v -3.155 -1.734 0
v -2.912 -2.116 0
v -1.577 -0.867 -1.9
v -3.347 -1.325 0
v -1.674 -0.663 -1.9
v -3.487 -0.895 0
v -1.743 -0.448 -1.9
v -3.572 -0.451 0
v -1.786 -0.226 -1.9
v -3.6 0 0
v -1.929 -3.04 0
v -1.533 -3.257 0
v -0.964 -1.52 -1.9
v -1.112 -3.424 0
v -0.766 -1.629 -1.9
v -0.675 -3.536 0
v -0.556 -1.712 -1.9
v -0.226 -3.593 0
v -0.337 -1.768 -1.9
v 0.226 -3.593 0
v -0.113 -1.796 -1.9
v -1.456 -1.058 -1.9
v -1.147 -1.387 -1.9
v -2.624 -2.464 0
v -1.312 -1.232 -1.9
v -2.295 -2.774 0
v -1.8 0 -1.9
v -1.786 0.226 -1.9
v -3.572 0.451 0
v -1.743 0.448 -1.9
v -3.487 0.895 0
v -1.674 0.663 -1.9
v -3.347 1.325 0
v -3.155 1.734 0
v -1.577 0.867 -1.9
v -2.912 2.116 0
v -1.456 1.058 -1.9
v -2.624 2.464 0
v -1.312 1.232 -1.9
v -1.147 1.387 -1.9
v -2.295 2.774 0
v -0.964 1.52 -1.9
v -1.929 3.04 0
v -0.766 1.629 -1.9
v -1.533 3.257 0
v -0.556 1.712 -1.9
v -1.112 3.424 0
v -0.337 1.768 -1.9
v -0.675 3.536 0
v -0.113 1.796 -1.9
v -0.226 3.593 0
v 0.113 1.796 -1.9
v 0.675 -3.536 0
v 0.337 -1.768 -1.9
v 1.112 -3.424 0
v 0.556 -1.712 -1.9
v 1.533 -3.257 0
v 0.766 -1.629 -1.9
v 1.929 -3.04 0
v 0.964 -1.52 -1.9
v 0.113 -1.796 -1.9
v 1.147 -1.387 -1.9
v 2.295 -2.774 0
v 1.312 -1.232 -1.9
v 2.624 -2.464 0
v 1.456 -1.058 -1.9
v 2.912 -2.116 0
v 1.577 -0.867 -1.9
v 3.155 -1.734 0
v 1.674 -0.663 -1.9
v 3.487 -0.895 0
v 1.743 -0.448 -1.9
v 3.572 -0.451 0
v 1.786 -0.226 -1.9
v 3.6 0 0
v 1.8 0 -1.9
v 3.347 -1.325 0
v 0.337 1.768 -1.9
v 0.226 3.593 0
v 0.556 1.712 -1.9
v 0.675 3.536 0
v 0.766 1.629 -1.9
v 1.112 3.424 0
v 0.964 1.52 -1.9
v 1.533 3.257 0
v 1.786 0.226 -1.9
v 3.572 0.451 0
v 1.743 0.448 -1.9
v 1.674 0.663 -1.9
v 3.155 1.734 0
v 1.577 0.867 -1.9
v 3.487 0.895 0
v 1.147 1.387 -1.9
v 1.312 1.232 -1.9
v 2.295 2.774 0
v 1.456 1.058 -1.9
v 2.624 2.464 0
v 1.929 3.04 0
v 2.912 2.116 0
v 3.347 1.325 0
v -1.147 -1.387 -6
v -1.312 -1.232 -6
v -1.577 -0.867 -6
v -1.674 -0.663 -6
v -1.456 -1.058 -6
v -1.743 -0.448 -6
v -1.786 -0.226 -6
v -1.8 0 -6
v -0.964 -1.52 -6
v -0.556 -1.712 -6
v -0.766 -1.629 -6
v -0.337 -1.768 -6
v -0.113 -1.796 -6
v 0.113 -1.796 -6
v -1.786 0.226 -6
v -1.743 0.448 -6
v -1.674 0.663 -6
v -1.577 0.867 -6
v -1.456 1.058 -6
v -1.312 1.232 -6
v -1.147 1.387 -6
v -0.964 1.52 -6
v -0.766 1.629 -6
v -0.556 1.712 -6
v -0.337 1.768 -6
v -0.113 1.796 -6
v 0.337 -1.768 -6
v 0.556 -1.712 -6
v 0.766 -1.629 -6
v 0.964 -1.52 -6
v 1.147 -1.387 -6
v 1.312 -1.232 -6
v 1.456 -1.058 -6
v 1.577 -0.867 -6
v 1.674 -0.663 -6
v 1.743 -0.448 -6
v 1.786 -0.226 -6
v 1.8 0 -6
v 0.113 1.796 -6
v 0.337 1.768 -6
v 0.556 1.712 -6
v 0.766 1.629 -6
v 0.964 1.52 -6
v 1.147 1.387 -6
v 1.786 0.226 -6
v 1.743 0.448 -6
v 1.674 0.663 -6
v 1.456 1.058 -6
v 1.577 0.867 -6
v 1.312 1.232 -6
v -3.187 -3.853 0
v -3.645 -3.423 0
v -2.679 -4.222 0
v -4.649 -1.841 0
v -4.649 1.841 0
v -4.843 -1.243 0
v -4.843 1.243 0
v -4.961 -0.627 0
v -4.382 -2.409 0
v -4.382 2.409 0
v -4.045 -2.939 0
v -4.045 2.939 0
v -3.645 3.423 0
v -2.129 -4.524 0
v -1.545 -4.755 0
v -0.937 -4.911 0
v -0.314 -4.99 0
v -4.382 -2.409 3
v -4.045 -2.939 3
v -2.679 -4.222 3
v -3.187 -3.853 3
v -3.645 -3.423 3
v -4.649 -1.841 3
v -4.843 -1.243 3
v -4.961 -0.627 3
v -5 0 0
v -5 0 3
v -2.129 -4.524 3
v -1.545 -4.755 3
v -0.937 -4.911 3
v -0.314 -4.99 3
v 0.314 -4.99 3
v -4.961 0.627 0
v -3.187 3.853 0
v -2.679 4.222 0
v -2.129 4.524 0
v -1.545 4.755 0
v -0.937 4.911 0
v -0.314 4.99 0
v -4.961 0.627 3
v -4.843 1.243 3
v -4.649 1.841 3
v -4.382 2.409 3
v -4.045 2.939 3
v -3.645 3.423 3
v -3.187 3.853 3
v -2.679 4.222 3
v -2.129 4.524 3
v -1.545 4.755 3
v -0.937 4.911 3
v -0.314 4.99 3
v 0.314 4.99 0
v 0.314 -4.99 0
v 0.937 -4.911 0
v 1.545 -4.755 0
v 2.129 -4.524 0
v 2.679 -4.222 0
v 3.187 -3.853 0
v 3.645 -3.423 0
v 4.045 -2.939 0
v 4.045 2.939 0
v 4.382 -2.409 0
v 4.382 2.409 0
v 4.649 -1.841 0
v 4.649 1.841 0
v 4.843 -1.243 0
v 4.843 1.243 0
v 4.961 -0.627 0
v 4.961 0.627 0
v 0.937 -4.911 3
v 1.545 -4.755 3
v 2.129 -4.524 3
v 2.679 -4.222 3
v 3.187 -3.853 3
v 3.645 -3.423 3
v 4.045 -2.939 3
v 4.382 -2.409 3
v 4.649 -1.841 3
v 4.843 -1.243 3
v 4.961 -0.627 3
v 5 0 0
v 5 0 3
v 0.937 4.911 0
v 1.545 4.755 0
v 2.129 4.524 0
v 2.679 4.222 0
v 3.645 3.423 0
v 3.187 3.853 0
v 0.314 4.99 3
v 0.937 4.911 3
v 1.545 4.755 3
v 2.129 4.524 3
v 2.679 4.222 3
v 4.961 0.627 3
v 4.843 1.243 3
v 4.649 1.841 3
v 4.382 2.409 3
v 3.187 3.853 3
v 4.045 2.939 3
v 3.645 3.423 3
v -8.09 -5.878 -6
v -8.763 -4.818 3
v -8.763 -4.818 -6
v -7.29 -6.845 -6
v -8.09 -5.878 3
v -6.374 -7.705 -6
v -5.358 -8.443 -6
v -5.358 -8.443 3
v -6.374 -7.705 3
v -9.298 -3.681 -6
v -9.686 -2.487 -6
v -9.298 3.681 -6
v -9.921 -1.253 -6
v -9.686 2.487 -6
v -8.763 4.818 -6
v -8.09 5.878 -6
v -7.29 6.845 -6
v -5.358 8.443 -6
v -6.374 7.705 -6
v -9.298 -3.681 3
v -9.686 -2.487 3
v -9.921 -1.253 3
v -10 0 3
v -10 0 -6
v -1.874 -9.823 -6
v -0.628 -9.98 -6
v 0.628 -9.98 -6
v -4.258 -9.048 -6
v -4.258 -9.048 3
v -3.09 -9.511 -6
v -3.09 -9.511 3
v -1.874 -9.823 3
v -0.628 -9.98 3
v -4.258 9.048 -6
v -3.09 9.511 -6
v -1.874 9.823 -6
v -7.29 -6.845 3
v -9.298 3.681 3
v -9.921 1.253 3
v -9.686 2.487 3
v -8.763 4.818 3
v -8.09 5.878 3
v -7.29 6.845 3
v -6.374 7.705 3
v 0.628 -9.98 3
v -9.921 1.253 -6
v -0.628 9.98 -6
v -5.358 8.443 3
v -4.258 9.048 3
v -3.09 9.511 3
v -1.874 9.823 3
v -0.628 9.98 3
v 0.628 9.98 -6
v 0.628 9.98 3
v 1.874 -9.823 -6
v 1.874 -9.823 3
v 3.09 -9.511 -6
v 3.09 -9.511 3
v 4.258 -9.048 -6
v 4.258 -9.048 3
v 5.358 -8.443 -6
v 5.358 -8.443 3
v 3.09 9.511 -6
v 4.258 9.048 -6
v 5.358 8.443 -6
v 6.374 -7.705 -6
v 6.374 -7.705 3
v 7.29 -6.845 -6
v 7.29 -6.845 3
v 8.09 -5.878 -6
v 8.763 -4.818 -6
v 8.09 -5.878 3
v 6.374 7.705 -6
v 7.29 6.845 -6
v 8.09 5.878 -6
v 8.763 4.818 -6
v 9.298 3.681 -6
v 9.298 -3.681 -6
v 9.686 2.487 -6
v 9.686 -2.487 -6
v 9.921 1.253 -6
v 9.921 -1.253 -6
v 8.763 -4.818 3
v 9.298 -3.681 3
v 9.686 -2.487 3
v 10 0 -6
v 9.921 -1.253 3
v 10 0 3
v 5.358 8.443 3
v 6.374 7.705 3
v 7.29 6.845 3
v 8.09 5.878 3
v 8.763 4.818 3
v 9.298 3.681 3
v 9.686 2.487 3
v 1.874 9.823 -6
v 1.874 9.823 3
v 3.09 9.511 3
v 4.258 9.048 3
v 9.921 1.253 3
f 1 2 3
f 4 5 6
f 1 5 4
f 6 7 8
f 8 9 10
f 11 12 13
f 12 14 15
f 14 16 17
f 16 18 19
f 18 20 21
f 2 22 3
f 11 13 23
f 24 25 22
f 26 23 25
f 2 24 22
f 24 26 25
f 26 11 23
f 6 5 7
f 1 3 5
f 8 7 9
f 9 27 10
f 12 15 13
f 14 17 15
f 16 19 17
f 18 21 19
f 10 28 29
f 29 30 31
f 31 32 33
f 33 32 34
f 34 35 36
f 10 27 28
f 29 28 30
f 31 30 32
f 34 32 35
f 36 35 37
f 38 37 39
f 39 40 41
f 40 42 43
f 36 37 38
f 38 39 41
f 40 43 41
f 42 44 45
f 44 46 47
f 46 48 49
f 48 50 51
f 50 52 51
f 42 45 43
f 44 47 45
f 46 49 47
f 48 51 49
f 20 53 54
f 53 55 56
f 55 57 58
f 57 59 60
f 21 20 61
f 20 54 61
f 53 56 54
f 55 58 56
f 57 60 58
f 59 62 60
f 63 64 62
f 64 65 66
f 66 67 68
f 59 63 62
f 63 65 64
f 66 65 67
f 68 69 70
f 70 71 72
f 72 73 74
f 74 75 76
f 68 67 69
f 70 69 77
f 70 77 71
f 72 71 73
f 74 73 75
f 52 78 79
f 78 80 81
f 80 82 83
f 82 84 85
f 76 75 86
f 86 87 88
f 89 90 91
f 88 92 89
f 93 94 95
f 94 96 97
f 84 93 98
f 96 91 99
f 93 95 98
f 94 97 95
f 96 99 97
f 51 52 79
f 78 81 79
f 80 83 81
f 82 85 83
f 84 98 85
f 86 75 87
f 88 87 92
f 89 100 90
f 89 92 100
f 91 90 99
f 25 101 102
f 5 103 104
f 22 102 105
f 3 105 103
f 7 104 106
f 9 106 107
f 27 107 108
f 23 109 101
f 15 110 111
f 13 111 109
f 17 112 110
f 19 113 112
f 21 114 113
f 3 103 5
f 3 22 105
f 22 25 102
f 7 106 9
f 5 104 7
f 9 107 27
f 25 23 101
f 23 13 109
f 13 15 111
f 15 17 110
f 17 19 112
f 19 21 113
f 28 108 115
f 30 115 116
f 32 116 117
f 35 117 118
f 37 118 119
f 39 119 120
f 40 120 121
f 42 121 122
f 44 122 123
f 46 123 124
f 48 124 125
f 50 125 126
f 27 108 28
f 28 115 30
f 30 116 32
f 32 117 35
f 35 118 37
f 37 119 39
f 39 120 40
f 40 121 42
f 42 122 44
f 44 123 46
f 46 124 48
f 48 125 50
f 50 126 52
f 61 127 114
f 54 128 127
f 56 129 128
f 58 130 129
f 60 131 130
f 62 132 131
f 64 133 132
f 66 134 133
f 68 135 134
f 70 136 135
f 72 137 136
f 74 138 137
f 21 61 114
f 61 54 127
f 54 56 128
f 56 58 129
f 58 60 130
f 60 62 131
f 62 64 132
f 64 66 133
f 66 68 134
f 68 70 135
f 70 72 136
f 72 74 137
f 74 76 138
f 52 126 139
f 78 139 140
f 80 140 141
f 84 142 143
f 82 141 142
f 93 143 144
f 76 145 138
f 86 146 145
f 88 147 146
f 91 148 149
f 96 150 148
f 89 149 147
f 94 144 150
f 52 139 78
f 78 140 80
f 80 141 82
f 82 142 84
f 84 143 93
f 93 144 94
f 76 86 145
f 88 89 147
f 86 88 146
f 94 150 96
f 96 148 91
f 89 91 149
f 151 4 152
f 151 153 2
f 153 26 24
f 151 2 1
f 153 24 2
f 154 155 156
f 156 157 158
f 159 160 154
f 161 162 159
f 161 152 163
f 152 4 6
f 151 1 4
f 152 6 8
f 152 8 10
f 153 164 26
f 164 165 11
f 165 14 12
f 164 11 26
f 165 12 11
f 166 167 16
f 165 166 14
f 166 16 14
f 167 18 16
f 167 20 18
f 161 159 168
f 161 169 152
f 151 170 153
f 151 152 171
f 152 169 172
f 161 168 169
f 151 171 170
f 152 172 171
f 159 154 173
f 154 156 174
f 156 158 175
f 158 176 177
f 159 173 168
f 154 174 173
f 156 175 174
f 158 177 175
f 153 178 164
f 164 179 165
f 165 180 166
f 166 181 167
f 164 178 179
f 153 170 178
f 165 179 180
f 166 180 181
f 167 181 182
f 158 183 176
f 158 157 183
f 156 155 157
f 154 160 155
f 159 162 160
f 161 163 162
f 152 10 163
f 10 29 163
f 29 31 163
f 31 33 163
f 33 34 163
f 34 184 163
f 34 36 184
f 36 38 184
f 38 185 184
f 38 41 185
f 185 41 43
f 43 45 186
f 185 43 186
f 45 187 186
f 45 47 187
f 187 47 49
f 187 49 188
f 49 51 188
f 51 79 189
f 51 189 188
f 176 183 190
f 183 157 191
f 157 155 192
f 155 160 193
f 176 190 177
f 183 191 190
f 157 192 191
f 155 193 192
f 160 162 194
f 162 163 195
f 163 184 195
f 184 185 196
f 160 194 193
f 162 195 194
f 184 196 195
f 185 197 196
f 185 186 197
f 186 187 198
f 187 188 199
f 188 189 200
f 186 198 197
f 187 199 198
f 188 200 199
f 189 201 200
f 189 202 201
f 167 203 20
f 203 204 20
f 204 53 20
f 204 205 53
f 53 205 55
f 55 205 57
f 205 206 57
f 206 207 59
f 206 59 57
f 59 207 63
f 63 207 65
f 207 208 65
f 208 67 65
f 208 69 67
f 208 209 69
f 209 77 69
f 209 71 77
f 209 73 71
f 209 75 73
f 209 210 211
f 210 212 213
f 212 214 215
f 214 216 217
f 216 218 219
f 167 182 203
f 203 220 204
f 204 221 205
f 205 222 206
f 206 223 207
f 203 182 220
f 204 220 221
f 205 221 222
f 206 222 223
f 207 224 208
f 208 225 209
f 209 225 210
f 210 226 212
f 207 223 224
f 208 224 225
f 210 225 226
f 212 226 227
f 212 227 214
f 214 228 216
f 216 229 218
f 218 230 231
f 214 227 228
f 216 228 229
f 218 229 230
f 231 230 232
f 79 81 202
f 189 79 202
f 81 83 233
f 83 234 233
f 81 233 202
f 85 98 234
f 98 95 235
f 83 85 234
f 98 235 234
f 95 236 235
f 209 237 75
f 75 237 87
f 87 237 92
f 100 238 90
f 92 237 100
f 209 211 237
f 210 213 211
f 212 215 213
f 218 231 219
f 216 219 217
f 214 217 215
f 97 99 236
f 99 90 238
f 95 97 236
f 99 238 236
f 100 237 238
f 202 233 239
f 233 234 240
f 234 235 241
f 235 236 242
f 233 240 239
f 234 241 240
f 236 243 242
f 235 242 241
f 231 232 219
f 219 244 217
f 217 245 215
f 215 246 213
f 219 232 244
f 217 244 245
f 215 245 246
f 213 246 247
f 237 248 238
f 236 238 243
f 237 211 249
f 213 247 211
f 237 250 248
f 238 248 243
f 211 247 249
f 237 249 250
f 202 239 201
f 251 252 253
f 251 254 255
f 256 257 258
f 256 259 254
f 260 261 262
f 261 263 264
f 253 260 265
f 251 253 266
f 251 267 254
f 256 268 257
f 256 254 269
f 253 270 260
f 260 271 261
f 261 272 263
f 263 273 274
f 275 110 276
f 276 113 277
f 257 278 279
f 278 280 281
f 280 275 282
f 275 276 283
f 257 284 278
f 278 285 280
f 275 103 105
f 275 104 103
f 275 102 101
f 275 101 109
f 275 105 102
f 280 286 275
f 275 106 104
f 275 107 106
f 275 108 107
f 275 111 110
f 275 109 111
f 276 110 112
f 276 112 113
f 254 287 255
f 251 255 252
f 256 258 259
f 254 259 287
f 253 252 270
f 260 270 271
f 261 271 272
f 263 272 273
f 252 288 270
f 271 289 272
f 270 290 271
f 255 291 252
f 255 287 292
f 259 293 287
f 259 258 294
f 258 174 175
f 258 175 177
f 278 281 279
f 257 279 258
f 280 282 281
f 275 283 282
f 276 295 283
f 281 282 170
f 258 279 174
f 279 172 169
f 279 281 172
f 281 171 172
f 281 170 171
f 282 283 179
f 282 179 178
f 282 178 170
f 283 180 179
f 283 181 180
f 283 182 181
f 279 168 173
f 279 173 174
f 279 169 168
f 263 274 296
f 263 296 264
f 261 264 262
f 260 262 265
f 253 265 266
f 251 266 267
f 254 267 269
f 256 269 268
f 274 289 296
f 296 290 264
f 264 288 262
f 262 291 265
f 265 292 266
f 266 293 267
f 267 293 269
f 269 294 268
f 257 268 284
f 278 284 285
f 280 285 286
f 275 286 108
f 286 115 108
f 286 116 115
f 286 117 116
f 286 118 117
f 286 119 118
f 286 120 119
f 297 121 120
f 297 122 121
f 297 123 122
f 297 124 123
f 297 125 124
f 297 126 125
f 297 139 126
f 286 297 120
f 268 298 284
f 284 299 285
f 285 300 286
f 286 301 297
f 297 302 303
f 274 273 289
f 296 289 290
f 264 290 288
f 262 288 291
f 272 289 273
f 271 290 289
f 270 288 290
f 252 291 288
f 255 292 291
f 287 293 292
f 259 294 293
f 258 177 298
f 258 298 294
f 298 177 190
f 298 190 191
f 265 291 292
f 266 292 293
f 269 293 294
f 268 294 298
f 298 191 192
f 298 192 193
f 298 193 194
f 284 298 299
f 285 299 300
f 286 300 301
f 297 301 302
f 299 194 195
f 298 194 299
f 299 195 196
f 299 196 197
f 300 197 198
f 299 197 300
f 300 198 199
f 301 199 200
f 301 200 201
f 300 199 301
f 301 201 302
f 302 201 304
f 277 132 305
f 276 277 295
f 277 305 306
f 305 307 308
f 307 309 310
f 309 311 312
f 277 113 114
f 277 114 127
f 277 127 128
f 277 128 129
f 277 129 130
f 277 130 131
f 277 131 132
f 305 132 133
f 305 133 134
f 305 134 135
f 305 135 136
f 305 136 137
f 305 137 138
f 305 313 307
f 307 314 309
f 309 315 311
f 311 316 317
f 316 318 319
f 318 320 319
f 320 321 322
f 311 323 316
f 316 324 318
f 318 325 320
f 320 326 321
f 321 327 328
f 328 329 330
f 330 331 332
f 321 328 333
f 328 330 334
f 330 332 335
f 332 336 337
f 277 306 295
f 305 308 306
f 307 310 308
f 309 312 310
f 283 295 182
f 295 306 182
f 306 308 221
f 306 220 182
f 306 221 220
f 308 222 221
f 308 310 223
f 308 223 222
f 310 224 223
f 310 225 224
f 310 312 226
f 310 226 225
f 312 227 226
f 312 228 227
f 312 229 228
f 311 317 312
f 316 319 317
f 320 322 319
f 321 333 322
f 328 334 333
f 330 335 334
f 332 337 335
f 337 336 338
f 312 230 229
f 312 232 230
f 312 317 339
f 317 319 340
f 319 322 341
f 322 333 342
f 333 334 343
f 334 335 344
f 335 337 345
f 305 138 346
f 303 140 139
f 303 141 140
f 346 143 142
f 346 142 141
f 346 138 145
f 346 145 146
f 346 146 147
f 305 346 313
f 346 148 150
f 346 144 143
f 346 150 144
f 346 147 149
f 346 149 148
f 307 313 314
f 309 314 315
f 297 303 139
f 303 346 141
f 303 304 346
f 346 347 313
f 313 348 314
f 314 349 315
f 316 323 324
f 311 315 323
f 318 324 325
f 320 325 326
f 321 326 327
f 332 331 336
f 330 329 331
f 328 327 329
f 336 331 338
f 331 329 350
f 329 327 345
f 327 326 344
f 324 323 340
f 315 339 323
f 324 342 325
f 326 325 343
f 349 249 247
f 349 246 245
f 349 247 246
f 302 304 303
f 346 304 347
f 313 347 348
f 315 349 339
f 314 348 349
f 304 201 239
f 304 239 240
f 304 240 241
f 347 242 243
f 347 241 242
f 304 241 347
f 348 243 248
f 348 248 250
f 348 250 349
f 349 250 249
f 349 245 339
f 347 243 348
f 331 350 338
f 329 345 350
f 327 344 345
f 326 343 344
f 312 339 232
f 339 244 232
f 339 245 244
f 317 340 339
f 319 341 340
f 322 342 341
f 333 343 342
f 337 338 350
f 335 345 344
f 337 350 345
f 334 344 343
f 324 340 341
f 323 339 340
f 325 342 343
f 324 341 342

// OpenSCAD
$fn = 50;

difference() {
	union() {
		translate(v = [0, 0, -6.0]) {
			cylinder(h = 9, r = 10.0);
		}
	}
	union() {
		translate(v = [0, 0, 0]) {
			rotate(a = [0, 0, 0]) {
				difference() {
					union() {
						translate(v = [0, 0, -9.0]) {
							cylinder(h = 9, r = 1.5);
						}
						translate(v = [0, 0, -1.9]) {
							cylinder(h = 1.9, r1 = 1.8, r2 = 3.6);
						}
						translate(v = [0, 0, -9.0]) {
							cylinder(h = 9, r = 1.8);
						}
						translate(v = [0, 0, -9.0]) {
							cylinder(h = 9, r = 1.5);
						}
					}
					union();
				}
			}
		}
		#cylinder(h = 3, r = 5.0);
	}
}
